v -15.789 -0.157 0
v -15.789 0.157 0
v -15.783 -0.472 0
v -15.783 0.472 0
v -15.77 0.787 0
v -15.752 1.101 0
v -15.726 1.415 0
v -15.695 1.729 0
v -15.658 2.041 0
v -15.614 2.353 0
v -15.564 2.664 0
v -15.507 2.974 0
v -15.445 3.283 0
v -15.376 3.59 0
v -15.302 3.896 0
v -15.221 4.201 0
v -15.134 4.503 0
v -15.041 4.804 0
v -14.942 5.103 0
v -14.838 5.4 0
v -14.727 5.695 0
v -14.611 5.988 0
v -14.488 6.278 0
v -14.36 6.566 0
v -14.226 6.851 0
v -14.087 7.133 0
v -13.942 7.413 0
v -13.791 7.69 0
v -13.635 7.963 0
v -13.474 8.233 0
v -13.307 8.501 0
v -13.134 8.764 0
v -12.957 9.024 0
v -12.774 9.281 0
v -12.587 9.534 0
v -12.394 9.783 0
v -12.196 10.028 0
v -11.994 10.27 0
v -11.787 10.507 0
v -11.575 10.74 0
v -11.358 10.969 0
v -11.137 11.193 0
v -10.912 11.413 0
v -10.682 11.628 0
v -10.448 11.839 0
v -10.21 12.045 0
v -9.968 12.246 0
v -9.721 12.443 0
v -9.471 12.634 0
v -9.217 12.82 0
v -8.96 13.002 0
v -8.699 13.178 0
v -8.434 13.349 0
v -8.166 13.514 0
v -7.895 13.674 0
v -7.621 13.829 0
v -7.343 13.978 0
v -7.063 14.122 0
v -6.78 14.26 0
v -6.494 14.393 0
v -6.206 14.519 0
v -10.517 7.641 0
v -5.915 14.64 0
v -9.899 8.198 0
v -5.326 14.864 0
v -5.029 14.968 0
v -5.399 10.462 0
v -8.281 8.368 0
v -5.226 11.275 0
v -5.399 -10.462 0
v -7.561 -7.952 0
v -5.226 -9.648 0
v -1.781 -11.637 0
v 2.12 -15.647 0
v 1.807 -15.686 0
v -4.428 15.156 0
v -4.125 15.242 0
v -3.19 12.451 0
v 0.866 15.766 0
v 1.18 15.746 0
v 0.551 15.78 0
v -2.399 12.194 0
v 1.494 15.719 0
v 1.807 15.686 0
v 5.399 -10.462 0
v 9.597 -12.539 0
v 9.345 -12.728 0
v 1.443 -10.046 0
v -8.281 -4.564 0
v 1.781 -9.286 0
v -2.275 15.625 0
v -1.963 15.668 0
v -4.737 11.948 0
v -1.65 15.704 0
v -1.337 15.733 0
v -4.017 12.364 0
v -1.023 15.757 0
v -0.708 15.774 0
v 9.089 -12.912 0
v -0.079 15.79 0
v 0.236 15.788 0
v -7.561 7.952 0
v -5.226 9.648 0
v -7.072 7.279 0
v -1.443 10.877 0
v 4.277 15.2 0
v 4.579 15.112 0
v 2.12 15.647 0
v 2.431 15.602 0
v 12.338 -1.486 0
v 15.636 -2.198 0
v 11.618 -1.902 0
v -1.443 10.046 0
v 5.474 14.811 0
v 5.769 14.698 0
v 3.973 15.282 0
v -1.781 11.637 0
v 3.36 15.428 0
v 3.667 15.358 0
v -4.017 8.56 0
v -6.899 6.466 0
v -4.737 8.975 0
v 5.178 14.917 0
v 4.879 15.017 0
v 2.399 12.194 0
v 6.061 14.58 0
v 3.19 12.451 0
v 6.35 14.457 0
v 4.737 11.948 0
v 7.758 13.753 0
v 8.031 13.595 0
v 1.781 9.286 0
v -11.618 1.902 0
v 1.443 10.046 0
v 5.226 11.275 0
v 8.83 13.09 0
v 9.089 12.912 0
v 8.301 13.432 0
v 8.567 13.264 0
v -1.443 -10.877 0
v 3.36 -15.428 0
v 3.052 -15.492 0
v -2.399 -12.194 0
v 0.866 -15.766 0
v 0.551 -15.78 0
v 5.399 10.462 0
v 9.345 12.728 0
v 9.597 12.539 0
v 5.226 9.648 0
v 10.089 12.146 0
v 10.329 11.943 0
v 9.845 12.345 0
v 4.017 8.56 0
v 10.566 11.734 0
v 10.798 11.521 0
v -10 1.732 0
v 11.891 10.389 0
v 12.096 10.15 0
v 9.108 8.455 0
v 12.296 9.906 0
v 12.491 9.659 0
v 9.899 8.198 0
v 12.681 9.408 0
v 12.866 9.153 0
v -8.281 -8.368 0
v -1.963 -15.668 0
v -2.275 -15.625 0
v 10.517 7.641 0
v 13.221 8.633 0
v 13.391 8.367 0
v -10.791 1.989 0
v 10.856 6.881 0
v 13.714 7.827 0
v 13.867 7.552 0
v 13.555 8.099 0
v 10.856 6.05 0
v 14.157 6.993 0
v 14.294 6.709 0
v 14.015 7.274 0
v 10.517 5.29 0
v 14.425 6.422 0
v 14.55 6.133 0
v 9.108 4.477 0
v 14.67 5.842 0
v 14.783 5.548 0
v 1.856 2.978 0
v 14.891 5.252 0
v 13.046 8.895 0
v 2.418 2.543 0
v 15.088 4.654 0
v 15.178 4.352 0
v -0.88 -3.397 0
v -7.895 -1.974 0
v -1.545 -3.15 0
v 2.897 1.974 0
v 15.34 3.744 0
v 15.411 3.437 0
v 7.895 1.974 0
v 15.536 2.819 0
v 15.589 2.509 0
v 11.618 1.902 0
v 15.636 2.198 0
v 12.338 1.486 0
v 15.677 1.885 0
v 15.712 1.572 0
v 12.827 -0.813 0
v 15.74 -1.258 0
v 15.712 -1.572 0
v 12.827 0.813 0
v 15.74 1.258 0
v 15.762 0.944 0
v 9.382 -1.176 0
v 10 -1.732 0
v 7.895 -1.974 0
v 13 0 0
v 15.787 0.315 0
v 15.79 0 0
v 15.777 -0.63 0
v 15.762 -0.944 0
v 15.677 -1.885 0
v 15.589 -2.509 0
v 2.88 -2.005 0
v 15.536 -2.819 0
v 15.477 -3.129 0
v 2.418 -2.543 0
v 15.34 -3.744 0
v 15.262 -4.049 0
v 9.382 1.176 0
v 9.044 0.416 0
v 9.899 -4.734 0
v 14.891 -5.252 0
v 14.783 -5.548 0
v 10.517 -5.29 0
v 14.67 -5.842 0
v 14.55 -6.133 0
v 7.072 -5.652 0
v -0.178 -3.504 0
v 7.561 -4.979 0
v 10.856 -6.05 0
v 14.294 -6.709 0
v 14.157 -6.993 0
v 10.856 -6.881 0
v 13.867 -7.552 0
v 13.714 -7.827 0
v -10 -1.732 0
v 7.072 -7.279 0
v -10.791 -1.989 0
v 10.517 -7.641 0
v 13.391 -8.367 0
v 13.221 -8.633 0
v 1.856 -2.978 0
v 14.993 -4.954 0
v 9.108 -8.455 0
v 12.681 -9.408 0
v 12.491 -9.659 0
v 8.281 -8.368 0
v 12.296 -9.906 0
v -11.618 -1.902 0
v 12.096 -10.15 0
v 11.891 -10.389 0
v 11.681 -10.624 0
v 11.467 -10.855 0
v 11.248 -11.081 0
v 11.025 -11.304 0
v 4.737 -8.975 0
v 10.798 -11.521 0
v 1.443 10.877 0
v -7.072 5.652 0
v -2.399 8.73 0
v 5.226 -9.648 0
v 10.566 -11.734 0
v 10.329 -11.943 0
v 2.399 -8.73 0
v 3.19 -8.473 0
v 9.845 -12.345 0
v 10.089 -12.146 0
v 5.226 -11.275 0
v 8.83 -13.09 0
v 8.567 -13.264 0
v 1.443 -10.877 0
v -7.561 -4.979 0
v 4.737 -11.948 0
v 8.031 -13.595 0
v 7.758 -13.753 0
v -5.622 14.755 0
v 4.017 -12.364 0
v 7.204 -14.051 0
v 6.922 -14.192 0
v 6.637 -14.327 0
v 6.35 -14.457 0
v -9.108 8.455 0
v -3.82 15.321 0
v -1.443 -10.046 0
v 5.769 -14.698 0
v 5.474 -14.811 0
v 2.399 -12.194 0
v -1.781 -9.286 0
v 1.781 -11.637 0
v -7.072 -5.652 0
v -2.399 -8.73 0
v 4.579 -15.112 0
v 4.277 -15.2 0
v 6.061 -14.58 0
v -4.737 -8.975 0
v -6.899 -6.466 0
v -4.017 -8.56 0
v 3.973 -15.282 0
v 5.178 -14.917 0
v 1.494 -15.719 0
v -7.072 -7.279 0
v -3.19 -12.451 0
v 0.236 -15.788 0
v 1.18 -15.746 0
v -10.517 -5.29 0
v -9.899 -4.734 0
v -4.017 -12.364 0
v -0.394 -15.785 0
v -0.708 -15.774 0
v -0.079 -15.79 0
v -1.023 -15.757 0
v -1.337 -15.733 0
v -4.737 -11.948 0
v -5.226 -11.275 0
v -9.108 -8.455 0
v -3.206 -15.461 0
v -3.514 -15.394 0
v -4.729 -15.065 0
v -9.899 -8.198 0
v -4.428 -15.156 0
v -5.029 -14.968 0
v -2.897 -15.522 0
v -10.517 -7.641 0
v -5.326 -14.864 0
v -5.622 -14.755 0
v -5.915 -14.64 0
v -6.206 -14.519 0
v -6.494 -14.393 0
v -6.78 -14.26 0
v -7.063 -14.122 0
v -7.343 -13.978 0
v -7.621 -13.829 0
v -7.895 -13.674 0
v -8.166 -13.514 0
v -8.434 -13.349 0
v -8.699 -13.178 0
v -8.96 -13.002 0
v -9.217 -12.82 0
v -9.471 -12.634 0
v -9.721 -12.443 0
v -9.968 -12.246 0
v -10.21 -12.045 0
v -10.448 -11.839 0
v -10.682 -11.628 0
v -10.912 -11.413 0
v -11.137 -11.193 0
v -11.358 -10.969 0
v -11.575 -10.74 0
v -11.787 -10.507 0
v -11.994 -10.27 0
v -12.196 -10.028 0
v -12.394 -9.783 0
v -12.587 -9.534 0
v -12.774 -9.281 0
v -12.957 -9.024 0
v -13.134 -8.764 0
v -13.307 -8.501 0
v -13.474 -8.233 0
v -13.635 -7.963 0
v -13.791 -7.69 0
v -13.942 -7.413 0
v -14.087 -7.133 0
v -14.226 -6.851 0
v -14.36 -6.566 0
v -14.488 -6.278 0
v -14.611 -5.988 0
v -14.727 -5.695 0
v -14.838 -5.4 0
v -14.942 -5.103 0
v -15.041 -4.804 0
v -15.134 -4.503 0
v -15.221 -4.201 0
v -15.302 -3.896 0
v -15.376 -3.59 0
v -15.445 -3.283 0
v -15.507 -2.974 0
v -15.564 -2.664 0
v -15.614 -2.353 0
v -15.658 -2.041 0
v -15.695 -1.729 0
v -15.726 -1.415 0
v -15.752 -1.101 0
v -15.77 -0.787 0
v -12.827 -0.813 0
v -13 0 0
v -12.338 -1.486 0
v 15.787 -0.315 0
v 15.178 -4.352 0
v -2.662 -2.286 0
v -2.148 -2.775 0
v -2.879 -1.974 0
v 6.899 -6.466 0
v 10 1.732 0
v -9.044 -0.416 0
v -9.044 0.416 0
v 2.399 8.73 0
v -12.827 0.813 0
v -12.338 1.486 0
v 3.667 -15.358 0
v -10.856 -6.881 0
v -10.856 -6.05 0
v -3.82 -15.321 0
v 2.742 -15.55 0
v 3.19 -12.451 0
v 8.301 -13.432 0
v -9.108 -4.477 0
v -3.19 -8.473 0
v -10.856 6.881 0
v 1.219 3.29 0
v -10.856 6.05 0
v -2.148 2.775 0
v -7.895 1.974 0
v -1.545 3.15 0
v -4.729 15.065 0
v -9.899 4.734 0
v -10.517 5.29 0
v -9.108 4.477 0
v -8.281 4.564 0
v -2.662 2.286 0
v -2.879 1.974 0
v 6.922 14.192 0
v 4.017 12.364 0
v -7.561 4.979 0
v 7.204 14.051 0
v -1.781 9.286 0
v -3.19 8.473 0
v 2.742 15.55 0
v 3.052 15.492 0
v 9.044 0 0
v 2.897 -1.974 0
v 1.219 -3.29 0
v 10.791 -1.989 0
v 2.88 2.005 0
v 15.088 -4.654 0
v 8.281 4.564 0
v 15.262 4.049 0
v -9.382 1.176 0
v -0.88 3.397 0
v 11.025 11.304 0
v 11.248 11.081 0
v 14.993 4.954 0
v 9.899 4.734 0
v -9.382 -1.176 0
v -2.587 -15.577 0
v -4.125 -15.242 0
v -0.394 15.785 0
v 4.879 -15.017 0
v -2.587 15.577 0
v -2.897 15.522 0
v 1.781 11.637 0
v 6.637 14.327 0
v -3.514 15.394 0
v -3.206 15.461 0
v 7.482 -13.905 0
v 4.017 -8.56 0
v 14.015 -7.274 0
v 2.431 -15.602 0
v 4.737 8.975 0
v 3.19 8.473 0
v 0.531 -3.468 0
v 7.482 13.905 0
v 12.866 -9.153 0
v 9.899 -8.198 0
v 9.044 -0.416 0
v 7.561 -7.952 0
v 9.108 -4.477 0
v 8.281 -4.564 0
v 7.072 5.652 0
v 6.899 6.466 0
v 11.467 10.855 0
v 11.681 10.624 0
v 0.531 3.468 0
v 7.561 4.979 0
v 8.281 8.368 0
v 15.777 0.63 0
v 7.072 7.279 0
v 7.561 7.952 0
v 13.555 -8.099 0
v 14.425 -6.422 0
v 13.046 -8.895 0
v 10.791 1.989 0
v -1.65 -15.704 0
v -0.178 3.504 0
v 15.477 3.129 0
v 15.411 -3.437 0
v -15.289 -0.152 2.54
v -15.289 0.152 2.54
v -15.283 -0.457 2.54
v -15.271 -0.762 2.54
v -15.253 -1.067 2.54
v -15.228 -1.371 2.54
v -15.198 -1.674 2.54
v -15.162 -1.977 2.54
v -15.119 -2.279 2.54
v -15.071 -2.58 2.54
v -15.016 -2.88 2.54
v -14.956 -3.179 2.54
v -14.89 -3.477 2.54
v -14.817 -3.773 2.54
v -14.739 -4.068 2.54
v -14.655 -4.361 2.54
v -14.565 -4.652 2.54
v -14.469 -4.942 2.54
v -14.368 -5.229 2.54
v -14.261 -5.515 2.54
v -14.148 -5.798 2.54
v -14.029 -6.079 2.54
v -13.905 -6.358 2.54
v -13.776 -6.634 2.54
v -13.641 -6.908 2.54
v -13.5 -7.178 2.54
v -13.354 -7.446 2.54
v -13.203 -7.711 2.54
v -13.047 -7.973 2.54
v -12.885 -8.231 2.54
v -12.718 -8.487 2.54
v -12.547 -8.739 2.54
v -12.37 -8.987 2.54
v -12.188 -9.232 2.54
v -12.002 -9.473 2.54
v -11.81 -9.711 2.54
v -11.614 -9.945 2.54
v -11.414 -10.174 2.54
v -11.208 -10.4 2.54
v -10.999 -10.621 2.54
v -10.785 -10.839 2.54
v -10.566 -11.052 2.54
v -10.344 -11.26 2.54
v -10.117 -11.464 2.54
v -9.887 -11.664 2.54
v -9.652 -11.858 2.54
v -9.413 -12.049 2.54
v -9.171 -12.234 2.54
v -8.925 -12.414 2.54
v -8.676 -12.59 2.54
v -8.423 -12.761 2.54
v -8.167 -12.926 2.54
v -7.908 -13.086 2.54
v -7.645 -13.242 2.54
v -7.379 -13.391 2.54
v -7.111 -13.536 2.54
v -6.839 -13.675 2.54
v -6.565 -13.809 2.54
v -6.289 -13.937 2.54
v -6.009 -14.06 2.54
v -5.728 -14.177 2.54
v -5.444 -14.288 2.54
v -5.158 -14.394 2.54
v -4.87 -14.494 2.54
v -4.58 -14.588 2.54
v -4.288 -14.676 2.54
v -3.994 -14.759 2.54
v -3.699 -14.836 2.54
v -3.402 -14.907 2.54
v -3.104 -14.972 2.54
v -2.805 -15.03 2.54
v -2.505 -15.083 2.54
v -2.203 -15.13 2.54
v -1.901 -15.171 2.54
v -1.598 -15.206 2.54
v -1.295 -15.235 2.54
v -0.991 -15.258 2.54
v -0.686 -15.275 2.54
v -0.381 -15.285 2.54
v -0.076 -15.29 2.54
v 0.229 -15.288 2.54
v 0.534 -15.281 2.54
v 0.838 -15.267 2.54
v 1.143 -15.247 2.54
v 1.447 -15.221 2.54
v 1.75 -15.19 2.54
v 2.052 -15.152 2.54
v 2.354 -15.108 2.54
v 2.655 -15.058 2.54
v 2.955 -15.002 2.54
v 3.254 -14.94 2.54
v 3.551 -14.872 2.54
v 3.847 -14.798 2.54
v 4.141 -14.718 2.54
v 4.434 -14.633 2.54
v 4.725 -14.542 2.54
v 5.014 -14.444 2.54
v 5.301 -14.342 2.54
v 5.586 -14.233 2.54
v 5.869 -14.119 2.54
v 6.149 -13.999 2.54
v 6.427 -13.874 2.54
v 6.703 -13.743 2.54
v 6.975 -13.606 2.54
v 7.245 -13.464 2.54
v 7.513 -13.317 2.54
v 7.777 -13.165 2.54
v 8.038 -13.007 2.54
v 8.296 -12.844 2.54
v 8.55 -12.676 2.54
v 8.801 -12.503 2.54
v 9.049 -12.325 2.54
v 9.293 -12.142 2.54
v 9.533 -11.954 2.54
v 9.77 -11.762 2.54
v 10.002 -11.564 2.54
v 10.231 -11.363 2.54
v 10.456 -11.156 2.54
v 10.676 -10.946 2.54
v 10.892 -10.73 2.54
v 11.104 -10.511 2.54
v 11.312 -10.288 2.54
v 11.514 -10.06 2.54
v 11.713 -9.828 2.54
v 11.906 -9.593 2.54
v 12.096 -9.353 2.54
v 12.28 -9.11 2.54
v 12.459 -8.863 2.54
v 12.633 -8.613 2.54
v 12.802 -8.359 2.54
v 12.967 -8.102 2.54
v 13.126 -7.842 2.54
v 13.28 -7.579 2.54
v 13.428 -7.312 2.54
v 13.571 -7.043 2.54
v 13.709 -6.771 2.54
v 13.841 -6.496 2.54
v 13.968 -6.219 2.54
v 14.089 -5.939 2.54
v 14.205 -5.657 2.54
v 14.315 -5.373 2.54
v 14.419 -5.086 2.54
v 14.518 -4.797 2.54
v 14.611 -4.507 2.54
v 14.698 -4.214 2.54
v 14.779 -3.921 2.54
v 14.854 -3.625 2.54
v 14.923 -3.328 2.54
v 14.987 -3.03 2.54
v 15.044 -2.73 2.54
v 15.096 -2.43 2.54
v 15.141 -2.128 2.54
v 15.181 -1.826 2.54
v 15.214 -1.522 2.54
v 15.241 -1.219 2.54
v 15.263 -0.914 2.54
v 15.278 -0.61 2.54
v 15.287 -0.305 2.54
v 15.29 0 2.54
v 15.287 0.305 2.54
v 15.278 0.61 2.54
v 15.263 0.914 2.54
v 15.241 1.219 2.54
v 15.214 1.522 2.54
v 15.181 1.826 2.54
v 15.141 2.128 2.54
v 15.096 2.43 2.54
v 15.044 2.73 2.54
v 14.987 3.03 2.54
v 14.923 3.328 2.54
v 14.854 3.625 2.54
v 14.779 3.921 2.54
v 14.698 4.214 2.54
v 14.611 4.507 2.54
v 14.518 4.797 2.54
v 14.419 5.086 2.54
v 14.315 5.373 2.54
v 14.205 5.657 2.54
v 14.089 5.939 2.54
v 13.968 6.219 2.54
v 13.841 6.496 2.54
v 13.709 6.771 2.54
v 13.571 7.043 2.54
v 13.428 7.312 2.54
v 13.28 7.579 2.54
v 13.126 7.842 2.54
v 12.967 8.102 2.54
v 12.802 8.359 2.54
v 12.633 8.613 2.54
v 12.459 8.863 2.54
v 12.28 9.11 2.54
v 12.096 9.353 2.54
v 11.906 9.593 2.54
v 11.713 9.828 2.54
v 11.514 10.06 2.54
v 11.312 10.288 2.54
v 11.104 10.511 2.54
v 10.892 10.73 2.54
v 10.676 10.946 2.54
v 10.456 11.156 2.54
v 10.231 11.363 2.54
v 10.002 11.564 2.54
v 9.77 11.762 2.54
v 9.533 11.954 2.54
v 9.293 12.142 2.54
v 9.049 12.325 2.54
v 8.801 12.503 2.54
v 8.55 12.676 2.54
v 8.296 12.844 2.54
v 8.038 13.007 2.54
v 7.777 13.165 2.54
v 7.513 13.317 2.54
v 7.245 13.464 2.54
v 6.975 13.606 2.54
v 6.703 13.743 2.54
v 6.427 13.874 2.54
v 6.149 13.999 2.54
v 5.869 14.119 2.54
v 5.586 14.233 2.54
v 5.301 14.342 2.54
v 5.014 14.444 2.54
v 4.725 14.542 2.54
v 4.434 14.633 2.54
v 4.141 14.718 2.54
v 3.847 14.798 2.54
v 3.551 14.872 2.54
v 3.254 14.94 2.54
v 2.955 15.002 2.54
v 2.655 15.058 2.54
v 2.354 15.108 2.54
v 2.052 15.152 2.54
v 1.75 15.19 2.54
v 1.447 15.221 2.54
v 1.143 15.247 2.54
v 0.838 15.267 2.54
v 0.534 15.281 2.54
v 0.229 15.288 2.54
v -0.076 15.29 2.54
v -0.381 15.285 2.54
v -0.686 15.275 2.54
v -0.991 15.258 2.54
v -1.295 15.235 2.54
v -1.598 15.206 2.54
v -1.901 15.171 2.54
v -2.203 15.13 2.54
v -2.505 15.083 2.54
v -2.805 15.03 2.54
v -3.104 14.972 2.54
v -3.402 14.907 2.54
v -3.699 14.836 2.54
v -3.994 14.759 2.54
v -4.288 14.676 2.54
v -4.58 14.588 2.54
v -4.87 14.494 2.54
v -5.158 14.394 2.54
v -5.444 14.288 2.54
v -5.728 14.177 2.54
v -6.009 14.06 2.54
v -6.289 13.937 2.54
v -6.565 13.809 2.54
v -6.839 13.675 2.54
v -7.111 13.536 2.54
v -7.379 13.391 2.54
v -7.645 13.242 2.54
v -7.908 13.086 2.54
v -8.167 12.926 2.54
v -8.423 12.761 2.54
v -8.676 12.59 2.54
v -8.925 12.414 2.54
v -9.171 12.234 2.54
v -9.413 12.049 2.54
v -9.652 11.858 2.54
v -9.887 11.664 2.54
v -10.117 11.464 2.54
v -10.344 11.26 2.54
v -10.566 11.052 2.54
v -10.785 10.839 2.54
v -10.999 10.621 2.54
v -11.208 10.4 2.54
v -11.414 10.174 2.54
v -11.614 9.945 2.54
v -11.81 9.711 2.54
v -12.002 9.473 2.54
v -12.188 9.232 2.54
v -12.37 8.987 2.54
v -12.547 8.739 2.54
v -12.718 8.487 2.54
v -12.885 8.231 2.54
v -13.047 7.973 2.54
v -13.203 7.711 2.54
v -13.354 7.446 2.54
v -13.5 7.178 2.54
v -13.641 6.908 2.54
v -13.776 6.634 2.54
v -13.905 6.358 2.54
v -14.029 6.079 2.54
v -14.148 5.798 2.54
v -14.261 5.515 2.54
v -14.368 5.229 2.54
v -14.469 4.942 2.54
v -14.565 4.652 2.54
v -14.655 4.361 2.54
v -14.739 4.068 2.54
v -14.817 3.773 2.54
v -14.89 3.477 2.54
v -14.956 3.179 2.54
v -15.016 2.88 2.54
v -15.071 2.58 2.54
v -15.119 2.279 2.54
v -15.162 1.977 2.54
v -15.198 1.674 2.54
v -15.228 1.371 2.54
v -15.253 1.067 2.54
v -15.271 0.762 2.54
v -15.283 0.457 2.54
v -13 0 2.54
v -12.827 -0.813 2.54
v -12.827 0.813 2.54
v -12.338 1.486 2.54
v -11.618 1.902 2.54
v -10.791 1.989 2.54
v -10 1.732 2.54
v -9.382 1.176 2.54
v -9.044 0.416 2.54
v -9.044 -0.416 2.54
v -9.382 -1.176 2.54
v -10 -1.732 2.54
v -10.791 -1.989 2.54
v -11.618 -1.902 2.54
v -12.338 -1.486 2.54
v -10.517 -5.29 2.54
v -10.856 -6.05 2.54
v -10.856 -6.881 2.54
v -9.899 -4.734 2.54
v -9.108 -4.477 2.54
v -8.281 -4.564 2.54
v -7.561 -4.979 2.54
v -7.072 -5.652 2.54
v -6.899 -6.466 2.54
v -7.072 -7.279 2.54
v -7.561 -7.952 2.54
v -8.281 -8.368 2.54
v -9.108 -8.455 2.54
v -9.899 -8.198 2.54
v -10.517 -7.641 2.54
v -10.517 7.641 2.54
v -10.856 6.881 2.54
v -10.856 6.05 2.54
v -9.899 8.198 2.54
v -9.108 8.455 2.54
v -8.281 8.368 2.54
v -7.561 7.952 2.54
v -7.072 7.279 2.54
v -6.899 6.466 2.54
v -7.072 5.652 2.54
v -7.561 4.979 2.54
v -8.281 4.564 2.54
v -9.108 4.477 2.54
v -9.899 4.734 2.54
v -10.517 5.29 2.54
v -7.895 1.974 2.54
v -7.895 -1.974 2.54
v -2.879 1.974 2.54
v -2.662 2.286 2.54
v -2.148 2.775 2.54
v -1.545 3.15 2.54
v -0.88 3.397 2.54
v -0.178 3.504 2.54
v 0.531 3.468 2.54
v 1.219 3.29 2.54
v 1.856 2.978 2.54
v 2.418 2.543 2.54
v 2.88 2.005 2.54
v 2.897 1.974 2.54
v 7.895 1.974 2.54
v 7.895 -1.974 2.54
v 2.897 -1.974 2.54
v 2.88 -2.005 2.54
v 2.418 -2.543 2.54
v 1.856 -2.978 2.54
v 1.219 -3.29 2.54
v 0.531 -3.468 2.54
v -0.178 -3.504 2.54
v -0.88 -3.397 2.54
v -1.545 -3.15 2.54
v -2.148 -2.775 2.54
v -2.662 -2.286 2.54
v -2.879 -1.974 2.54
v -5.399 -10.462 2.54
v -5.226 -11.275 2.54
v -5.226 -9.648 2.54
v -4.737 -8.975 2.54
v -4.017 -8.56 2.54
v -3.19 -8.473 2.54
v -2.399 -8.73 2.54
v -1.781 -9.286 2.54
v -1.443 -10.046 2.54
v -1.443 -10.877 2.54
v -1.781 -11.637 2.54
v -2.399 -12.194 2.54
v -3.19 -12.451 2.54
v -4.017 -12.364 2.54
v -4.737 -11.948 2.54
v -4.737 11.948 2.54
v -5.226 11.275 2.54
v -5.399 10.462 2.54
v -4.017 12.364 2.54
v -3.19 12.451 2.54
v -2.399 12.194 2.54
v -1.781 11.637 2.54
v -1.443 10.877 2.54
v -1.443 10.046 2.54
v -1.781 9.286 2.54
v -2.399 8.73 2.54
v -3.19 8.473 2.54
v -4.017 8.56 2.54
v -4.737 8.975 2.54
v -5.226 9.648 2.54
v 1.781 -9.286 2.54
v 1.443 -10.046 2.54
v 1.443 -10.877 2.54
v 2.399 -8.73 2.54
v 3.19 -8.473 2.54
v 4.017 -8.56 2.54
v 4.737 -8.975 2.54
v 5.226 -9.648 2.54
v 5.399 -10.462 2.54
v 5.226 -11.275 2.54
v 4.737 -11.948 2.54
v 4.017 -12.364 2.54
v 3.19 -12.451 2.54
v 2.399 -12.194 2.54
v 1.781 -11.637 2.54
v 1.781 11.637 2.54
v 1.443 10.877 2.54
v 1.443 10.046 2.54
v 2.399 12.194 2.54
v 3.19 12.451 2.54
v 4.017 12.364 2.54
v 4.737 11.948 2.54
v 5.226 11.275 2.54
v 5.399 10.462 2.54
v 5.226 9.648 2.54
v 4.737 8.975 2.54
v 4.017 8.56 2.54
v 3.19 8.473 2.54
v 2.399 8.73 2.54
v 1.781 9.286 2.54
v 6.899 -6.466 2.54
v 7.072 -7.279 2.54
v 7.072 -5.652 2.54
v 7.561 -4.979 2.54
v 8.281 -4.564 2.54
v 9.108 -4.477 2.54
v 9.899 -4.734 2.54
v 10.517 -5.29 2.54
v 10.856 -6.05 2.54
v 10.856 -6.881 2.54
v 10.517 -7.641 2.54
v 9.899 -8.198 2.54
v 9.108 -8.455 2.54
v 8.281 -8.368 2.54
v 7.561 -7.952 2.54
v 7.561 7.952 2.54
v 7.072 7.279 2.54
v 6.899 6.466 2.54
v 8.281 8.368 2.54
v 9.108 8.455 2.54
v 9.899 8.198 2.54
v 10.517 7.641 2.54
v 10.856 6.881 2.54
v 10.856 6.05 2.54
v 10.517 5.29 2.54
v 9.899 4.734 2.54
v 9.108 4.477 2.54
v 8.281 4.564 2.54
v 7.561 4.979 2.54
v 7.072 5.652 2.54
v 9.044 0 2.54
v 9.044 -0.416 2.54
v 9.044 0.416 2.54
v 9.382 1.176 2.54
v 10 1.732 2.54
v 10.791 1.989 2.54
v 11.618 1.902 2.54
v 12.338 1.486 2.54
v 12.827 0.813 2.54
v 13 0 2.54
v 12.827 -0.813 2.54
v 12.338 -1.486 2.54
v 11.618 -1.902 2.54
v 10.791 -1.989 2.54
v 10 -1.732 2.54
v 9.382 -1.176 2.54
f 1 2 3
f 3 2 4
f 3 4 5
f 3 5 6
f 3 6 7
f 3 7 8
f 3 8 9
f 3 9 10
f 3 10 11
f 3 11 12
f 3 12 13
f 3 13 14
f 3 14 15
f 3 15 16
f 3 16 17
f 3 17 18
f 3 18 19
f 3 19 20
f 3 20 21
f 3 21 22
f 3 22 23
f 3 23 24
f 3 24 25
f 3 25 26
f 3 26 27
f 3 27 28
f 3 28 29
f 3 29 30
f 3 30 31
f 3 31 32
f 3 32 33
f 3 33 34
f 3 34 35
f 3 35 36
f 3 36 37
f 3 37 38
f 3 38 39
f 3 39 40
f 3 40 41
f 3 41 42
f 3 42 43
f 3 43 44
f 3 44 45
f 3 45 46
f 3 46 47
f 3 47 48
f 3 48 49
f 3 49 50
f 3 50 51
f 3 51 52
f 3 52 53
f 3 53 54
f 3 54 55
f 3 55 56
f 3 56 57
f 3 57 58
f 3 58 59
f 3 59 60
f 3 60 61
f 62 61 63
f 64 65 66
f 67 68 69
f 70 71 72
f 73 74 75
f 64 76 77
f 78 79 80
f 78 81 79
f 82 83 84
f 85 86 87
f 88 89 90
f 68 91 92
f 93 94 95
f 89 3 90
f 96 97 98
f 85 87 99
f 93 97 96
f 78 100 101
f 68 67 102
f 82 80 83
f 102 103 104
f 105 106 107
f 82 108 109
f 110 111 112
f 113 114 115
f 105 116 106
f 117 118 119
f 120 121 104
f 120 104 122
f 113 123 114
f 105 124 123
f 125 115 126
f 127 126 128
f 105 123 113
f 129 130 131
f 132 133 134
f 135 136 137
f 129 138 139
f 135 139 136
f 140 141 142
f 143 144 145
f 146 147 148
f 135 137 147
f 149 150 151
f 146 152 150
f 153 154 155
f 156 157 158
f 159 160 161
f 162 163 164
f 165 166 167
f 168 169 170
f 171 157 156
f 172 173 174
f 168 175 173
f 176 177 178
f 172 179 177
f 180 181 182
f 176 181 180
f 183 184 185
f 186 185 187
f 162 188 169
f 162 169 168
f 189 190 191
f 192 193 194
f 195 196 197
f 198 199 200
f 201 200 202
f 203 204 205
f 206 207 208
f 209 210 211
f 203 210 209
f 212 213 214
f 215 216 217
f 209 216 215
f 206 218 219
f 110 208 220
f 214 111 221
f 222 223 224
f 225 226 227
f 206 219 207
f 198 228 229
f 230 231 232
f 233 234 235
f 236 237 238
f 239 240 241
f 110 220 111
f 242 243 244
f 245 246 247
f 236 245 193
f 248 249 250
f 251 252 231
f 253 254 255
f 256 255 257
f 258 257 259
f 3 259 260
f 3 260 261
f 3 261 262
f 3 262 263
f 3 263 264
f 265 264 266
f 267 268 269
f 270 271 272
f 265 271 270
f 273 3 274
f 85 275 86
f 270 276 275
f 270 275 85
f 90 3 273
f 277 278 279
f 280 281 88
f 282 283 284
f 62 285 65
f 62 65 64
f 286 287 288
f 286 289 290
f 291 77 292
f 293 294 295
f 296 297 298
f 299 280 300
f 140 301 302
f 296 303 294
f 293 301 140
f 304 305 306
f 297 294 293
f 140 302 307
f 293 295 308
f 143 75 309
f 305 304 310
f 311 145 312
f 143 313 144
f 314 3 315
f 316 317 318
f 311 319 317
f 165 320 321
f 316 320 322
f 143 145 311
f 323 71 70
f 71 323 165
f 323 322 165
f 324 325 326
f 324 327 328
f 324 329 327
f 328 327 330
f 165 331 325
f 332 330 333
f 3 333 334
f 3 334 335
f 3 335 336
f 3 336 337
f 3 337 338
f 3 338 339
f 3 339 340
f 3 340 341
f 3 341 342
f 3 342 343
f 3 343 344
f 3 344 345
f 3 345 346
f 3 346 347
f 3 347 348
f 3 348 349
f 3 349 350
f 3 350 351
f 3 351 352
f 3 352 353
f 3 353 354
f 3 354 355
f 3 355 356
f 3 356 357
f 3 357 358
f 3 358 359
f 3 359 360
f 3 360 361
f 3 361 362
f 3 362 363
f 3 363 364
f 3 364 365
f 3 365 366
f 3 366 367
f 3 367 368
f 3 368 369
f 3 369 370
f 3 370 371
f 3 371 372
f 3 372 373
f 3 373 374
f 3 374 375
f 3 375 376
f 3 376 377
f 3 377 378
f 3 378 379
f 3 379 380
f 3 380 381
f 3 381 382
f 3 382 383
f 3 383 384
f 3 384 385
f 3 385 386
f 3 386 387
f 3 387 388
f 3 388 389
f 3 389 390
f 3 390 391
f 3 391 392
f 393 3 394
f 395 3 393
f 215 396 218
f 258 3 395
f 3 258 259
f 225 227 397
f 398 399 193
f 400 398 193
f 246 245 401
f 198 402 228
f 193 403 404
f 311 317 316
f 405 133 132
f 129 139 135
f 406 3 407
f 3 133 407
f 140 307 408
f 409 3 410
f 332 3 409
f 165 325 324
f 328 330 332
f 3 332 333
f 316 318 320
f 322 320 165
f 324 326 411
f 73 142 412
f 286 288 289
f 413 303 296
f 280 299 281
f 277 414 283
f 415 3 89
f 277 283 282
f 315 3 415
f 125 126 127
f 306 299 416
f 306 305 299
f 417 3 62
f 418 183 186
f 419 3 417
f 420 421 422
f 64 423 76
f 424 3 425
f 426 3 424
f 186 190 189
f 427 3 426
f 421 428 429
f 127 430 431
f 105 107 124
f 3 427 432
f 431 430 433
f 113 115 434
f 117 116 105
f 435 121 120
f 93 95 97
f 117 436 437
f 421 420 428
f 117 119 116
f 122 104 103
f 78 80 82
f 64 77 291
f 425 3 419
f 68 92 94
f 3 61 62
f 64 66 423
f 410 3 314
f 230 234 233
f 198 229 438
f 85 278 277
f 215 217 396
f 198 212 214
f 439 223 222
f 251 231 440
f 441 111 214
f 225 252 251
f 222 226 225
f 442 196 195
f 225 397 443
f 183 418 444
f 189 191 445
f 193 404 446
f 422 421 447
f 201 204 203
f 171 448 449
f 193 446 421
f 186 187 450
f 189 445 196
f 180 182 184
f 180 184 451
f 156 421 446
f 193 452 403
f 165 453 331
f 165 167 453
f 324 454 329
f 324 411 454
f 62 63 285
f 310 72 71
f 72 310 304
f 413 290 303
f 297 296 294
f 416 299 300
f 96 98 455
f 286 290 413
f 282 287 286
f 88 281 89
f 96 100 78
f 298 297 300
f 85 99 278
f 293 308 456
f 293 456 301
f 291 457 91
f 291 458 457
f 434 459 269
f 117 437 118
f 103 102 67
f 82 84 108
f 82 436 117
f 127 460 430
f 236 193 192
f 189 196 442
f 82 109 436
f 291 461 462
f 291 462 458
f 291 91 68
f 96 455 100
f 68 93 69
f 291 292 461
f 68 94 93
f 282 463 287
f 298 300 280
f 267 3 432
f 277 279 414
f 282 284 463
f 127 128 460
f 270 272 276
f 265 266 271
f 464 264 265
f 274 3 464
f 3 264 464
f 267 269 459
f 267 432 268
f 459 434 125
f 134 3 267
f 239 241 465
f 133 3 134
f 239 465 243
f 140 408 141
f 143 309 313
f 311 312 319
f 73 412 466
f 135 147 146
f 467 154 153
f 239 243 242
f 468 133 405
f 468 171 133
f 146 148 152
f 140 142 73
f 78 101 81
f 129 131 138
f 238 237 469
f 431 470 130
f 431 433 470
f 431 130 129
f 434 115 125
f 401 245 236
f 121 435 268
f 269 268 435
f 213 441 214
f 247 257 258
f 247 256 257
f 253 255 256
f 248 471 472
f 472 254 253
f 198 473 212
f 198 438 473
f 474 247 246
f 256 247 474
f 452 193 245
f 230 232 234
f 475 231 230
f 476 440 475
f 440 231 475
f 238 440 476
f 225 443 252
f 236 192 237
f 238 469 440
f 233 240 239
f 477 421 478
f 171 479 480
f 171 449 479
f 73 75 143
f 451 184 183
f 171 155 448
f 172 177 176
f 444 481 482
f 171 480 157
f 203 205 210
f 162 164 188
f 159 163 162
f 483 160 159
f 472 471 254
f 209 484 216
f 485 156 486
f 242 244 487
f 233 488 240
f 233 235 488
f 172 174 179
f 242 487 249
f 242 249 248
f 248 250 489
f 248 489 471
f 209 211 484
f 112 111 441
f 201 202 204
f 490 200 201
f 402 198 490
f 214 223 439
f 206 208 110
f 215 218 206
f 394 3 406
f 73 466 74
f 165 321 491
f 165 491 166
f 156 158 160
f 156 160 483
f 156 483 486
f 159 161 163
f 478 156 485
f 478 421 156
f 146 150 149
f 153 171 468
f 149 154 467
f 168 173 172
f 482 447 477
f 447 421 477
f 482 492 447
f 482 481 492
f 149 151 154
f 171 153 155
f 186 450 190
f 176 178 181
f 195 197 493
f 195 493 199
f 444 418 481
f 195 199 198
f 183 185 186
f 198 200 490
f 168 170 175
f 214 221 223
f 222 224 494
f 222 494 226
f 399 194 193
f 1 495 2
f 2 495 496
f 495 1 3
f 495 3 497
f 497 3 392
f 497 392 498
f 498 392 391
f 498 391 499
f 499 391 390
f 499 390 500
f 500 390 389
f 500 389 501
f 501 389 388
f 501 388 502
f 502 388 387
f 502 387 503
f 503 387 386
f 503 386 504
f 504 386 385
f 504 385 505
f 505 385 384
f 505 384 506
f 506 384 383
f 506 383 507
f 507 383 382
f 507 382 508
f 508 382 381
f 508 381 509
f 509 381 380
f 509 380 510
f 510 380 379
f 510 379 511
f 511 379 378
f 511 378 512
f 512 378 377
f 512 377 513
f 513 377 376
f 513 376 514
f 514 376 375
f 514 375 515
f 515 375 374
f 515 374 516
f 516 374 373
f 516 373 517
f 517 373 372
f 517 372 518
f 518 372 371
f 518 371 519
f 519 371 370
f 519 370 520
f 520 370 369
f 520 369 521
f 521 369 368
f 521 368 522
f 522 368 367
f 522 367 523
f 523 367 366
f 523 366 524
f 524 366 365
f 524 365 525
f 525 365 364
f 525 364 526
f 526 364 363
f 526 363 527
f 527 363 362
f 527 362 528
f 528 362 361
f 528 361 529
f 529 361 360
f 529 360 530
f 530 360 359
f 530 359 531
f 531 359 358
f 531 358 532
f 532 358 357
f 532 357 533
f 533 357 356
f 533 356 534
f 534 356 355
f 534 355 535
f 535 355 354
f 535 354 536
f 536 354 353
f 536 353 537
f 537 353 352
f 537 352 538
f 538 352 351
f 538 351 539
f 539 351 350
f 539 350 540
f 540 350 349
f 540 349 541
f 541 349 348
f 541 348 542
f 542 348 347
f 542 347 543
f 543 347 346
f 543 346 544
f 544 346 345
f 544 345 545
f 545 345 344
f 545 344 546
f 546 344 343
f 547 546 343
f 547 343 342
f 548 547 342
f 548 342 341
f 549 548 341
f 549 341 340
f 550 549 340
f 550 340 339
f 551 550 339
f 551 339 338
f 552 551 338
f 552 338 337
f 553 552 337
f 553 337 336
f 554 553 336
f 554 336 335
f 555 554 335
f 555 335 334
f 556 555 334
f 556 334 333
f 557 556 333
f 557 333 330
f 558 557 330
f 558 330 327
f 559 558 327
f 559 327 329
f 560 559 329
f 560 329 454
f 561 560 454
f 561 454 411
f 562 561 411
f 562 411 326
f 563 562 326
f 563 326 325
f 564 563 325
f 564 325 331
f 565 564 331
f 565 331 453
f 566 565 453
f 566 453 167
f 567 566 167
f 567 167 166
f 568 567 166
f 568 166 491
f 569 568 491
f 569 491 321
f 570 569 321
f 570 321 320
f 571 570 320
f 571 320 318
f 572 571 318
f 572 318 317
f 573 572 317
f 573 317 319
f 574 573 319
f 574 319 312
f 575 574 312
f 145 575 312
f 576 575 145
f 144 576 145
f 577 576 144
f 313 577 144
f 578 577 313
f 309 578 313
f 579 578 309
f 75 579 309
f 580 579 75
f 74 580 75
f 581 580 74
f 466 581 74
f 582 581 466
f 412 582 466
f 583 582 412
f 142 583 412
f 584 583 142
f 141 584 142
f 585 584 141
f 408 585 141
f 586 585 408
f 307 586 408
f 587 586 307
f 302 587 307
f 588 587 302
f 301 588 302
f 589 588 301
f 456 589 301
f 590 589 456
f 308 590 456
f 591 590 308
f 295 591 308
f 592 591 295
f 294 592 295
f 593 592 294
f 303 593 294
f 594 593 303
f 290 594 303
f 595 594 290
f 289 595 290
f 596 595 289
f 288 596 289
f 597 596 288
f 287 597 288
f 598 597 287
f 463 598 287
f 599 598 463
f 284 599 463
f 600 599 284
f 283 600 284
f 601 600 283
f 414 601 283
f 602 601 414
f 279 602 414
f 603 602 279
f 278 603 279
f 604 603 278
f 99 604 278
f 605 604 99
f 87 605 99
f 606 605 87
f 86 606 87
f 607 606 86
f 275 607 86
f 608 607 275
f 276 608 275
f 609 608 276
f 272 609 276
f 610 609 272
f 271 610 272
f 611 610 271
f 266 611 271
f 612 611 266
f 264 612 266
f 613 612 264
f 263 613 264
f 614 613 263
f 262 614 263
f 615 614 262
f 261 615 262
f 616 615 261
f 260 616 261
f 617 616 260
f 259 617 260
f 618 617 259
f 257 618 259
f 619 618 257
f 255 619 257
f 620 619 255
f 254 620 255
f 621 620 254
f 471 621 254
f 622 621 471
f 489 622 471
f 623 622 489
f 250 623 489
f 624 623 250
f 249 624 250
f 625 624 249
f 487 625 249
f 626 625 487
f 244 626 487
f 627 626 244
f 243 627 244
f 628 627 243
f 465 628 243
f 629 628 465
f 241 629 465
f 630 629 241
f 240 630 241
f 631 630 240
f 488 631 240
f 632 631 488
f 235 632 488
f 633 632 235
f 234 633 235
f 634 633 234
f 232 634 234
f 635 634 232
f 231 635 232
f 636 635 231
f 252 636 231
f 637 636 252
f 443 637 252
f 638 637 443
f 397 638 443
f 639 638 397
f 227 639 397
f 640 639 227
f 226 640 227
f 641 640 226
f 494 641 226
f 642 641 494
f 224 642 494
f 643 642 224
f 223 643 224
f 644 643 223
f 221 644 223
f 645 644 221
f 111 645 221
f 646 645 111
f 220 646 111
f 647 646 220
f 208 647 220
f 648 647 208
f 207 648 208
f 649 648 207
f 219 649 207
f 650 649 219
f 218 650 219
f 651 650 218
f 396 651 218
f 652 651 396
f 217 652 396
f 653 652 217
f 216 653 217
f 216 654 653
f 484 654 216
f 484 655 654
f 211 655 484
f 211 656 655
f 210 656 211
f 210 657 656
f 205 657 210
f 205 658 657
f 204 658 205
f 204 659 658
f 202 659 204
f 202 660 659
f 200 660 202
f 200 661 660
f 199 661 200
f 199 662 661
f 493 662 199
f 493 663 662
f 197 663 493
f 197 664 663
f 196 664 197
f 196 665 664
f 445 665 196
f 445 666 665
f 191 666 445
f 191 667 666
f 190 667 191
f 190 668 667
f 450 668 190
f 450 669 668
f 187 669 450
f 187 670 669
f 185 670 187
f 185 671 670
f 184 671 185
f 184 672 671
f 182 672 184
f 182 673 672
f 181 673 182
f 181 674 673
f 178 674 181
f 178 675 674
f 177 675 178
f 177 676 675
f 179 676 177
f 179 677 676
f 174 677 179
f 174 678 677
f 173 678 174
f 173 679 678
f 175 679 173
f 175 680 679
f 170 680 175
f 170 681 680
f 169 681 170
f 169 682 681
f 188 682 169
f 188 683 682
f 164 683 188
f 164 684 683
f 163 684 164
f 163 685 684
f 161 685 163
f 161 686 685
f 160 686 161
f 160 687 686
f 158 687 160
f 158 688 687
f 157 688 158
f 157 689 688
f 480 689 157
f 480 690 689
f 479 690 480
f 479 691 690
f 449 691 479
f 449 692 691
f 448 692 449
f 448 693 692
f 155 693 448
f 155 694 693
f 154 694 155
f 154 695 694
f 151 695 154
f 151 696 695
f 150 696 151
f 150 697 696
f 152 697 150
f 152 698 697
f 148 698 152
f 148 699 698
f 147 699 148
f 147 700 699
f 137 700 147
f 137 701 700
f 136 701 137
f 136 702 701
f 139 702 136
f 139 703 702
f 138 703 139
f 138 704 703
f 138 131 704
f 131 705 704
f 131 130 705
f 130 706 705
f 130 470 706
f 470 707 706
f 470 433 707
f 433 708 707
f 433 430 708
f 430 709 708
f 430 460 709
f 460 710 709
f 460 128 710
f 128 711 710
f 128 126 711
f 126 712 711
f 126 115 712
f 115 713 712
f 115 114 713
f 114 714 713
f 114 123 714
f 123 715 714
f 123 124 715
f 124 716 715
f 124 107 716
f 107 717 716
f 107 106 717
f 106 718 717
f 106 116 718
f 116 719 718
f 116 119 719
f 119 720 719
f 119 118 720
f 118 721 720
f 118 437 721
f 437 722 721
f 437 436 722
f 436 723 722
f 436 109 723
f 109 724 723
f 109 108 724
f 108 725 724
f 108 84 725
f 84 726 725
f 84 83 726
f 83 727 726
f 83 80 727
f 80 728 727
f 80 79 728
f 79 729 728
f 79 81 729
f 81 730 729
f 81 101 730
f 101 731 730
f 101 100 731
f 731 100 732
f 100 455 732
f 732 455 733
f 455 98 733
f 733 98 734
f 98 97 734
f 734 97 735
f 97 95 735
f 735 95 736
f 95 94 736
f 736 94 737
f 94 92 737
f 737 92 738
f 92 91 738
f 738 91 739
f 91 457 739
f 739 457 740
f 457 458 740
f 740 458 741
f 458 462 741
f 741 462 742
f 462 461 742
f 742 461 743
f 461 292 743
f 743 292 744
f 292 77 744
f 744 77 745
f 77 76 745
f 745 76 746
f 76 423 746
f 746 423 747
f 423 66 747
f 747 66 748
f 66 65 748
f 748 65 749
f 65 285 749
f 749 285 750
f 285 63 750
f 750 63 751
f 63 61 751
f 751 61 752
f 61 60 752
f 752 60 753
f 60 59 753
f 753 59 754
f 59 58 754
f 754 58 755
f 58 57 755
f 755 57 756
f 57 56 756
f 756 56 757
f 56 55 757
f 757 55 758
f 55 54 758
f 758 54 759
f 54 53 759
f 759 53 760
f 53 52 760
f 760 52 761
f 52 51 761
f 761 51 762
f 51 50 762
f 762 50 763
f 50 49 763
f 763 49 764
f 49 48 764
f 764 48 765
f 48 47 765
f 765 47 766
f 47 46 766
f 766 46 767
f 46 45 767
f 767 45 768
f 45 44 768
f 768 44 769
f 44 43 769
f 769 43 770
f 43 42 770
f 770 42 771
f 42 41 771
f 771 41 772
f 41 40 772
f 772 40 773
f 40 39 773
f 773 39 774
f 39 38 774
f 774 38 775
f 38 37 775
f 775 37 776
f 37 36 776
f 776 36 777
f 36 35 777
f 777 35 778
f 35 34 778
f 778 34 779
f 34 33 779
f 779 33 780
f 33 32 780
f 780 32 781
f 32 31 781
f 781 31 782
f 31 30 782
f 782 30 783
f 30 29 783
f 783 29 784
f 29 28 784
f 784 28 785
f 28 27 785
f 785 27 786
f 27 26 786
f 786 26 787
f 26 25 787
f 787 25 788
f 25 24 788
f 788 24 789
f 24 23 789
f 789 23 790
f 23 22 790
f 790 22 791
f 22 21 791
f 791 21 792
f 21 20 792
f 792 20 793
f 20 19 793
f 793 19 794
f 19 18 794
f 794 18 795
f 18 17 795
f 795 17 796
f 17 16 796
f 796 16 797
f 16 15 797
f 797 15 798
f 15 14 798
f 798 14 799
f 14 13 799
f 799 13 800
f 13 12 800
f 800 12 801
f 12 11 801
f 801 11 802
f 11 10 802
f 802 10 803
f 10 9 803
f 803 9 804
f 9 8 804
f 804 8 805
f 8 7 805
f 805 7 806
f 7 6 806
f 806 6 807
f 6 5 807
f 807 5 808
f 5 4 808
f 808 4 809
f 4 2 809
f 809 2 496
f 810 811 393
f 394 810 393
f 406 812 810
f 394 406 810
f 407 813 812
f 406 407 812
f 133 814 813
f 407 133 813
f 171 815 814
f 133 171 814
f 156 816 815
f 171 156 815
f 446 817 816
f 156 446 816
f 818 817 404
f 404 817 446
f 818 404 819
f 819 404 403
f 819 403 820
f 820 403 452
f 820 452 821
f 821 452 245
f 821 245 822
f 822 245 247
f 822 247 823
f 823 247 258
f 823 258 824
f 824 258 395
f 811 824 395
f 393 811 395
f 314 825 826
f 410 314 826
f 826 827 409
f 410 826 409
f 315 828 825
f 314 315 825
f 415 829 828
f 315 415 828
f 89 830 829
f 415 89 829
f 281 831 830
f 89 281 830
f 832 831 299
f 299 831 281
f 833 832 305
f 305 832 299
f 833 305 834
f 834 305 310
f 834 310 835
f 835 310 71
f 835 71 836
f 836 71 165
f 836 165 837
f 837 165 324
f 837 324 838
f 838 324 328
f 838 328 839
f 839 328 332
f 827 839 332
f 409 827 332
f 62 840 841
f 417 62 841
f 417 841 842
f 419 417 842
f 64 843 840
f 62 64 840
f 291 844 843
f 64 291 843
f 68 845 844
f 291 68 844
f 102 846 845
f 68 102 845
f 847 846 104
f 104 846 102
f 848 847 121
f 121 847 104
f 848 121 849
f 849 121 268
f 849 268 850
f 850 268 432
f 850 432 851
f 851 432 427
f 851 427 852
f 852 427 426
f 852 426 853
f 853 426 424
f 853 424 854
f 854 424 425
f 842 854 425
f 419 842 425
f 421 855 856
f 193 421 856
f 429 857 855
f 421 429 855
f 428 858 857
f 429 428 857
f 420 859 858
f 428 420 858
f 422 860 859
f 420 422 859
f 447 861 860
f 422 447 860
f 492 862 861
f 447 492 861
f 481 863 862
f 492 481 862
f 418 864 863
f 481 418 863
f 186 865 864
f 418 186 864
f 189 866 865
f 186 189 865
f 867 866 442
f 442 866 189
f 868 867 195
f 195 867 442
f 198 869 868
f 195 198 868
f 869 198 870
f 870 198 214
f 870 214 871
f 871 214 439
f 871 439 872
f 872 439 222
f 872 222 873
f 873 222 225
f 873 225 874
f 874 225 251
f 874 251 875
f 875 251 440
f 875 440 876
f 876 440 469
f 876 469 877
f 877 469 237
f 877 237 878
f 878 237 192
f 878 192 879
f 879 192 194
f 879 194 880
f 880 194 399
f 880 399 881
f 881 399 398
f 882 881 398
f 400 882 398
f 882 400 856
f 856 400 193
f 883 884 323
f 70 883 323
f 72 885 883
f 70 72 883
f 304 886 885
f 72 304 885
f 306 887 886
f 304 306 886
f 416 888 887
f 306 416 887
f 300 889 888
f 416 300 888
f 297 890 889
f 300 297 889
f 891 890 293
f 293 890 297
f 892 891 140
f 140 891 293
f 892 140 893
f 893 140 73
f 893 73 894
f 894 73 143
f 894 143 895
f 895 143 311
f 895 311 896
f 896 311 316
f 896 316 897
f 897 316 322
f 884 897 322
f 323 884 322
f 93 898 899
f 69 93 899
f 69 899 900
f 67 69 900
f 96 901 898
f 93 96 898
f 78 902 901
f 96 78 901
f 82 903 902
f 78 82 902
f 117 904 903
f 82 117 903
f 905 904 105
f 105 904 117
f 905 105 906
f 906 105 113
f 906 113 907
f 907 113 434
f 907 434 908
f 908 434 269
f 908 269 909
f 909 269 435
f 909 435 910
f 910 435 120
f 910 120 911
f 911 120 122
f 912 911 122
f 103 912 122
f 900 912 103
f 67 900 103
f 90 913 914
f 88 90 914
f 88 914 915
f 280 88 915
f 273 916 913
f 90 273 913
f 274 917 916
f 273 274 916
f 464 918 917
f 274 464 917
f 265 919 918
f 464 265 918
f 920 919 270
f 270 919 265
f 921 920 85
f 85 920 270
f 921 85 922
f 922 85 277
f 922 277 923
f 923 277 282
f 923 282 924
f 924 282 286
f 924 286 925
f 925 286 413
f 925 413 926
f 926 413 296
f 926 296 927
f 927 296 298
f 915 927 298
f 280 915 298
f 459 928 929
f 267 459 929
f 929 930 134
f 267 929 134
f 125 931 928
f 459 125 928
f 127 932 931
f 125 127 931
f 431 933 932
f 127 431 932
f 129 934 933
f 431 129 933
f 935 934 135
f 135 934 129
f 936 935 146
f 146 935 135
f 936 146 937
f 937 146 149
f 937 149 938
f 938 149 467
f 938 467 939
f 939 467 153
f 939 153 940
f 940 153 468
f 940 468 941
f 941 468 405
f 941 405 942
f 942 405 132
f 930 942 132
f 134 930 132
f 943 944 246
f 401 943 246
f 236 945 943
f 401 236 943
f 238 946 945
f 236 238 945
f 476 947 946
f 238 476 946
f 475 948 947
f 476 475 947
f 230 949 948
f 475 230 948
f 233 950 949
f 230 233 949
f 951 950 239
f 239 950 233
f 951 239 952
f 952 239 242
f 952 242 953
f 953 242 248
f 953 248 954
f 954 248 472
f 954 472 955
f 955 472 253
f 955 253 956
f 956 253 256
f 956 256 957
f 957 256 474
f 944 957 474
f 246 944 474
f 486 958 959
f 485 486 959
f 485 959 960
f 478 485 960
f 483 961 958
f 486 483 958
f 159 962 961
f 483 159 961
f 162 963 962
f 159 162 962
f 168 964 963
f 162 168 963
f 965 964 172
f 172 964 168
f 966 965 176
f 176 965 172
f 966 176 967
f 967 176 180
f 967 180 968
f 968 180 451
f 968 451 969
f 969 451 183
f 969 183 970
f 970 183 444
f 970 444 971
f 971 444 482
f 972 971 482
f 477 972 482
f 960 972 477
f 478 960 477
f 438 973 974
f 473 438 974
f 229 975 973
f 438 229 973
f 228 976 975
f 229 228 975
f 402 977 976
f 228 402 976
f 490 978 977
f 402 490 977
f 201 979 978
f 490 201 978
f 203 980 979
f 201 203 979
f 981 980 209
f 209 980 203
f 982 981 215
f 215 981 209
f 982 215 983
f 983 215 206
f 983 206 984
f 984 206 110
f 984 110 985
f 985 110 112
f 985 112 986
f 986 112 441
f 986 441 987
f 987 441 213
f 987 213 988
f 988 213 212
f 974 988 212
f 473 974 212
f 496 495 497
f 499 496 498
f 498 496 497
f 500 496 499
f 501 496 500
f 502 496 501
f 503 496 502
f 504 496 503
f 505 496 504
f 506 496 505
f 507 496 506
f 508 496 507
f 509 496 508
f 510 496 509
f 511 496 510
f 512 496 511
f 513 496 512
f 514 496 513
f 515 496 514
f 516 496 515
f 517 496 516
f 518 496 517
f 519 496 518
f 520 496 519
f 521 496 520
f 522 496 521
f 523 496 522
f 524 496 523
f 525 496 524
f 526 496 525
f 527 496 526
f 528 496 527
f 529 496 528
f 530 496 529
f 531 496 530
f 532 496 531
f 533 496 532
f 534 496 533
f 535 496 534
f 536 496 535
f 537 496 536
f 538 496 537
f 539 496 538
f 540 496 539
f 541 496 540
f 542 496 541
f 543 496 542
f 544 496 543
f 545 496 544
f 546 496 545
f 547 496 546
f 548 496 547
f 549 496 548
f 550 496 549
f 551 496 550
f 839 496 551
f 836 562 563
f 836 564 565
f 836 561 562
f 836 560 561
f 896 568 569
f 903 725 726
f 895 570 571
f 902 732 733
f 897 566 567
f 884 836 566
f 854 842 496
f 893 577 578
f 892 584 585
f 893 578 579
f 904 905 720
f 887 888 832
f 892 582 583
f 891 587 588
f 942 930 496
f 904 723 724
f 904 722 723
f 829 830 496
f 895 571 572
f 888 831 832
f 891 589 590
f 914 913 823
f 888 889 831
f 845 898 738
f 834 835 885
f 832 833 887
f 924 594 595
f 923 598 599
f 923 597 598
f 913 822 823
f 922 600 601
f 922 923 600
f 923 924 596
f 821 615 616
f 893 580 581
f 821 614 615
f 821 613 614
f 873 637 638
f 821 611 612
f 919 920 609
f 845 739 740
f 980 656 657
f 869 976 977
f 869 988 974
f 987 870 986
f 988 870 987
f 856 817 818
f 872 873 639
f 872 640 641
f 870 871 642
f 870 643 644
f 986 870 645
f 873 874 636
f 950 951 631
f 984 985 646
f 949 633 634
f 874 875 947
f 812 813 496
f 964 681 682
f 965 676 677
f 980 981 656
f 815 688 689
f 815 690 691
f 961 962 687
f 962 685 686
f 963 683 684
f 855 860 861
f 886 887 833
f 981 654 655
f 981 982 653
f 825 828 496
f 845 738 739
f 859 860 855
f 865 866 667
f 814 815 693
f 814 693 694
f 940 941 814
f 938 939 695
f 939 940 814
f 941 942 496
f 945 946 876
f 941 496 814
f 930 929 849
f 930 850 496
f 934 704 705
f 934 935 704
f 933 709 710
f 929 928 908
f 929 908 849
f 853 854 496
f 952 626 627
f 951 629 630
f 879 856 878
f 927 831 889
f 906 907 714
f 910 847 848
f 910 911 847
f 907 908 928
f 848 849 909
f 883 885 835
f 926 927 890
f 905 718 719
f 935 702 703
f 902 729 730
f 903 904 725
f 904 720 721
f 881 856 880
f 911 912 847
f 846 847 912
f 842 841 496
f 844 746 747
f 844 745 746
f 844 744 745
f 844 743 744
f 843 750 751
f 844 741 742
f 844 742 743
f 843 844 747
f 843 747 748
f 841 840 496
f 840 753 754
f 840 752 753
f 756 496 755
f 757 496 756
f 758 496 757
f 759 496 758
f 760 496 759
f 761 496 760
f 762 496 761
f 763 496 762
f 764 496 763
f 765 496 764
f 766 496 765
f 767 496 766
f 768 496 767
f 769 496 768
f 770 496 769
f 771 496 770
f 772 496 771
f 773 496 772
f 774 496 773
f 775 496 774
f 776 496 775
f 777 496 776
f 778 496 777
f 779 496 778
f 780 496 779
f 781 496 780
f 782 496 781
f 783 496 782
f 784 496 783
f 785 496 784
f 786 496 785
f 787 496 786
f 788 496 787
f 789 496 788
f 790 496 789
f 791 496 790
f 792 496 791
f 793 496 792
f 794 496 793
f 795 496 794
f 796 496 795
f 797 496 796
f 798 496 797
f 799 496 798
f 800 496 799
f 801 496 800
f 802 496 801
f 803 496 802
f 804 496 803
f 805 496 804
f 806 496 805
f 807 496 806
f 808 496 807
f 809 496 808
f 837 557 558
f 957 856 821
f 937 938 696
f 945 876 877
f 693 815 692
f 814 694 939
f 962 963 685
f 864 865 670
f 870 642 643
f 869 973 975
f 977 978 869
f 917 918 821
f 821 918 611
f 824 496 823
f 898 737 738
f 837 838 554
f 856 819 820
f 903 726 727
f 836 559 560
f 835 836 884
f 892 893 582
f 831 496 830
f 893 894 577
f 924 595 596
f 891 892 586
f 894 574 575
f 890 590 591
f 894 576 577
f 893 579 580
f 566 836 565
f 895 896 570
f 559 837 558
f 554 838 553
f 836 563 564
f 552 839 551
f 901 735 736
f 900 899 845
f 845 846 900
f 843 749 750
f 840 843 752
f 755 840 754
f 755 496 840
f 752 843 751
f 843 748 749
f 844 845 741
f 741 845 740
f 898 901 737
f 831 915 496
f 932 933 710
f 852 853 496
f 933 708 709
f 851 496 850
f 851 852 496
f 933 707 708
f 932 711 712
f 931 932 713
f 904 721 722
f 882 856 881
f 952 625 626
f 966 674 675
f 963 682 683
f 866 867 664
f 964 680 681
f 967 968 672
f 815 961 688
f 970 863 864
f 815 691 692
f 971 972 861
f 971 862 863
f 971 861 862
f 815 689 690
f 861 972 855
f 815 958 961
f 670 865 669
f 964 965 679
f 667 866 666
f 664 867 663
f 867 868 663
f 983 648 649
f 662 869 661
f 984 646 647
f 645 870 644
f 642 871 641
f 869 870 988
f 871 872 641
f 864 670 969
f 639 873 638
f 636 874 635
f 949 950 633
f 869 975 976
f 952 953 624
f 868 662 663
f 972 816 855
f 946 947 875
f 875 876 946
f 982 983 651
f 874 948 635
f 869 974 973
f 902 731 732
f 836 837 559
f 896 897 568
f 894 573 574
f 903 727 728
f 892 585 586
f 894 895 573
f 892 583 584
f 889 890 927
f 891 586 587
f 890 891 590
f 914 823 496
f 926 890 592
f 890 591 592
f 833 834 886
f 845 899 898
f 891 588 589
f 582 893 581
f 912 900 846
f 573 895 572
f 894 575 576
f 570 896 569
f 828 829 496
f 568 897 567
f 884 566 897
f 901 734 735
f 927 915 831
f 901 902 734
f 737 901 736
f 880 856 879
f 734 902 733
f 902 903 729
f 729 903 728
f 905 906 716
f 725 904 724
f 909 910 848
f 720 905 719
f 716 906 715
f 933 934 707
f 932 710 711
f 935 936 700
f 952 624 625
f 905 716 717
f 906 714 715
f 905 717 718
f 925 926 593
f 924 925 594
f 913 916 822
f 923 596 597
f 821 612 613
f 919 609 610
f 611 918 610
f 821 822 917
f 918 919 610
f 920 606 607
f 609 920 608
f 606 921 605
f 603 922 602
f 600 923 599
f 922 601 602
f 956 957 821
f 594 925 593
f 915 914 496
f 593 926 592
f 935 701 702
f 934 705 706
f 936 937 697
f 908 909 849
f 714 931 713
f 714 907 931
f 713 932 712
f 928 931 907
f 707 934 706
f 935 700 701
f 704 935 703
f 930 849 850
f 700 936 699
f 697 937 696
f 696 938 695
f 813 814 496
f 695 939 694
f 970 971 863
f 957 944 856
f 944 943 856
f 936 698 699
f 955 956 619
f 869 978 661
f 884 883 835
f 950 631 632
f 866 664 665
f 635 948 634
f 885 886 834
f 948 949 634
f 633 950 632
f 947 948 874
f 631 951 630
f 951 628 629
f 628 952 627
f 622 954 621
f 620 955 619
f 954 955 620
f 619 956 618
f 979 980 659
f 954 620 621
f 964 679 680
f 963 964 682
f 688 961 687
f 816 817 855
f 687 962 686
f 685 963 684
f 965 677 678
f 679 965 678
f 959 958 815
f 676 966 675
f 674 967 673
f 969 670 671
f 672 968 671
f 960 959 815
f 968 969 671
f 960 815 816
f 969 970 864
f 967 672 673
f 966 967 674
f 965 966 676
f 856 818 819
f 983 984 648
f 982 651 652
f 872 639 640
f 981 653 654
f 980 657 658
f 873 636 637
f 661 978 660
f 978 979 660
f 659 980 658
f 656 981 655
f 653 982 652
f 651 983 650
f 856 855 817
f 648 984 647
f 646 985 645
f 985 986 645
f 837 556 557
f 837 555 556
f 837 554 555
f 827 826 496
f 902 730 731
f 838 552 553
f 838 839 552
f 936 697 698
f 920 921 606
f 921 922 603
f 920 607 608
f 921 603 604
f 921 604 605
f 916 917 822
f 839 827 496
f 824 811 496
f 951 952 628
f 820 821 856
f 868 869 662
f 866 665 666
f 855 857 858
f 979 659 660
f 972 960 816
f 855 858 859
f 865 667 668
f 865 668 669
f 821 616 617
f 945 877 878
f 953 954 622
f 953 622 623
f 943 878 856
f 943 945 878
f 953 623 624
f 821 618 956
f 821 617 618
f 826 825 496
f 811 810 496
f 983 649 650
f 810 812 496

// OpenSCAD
cap_diameter = 31.58;
cap_thickness = 2.54;
drain_hole_diameter = 4;

difference(){

	// main body
	cylinder(r1=cap_diameter/2,r2=cap_diameter/2-.5, h=cap_thickness,$fn=cap_diameter*10);

	// center hole
	translate([0,0,-1]){
		cylinder(r=cap_diameter/9, h=cap_thickness+2,$fn=(cap_diameter*10)/10);
	}

	// keyhole
	translate([-cap_diameter/4,-(cap_diameter/8)/2,-1]){
		cube([cap_diameter/2,cap_diameter/8,cap_thickness+2]);
	}

	// ring of holes
	for(i=[0:10]){
		rotate(i*360/10, [0,0,1]){
			translate([11,0,-1]){
					cylinder(r=drain_hole_diameter/2,h=cap_thickness+2,$fn=15);
			}
		}
	}
}
